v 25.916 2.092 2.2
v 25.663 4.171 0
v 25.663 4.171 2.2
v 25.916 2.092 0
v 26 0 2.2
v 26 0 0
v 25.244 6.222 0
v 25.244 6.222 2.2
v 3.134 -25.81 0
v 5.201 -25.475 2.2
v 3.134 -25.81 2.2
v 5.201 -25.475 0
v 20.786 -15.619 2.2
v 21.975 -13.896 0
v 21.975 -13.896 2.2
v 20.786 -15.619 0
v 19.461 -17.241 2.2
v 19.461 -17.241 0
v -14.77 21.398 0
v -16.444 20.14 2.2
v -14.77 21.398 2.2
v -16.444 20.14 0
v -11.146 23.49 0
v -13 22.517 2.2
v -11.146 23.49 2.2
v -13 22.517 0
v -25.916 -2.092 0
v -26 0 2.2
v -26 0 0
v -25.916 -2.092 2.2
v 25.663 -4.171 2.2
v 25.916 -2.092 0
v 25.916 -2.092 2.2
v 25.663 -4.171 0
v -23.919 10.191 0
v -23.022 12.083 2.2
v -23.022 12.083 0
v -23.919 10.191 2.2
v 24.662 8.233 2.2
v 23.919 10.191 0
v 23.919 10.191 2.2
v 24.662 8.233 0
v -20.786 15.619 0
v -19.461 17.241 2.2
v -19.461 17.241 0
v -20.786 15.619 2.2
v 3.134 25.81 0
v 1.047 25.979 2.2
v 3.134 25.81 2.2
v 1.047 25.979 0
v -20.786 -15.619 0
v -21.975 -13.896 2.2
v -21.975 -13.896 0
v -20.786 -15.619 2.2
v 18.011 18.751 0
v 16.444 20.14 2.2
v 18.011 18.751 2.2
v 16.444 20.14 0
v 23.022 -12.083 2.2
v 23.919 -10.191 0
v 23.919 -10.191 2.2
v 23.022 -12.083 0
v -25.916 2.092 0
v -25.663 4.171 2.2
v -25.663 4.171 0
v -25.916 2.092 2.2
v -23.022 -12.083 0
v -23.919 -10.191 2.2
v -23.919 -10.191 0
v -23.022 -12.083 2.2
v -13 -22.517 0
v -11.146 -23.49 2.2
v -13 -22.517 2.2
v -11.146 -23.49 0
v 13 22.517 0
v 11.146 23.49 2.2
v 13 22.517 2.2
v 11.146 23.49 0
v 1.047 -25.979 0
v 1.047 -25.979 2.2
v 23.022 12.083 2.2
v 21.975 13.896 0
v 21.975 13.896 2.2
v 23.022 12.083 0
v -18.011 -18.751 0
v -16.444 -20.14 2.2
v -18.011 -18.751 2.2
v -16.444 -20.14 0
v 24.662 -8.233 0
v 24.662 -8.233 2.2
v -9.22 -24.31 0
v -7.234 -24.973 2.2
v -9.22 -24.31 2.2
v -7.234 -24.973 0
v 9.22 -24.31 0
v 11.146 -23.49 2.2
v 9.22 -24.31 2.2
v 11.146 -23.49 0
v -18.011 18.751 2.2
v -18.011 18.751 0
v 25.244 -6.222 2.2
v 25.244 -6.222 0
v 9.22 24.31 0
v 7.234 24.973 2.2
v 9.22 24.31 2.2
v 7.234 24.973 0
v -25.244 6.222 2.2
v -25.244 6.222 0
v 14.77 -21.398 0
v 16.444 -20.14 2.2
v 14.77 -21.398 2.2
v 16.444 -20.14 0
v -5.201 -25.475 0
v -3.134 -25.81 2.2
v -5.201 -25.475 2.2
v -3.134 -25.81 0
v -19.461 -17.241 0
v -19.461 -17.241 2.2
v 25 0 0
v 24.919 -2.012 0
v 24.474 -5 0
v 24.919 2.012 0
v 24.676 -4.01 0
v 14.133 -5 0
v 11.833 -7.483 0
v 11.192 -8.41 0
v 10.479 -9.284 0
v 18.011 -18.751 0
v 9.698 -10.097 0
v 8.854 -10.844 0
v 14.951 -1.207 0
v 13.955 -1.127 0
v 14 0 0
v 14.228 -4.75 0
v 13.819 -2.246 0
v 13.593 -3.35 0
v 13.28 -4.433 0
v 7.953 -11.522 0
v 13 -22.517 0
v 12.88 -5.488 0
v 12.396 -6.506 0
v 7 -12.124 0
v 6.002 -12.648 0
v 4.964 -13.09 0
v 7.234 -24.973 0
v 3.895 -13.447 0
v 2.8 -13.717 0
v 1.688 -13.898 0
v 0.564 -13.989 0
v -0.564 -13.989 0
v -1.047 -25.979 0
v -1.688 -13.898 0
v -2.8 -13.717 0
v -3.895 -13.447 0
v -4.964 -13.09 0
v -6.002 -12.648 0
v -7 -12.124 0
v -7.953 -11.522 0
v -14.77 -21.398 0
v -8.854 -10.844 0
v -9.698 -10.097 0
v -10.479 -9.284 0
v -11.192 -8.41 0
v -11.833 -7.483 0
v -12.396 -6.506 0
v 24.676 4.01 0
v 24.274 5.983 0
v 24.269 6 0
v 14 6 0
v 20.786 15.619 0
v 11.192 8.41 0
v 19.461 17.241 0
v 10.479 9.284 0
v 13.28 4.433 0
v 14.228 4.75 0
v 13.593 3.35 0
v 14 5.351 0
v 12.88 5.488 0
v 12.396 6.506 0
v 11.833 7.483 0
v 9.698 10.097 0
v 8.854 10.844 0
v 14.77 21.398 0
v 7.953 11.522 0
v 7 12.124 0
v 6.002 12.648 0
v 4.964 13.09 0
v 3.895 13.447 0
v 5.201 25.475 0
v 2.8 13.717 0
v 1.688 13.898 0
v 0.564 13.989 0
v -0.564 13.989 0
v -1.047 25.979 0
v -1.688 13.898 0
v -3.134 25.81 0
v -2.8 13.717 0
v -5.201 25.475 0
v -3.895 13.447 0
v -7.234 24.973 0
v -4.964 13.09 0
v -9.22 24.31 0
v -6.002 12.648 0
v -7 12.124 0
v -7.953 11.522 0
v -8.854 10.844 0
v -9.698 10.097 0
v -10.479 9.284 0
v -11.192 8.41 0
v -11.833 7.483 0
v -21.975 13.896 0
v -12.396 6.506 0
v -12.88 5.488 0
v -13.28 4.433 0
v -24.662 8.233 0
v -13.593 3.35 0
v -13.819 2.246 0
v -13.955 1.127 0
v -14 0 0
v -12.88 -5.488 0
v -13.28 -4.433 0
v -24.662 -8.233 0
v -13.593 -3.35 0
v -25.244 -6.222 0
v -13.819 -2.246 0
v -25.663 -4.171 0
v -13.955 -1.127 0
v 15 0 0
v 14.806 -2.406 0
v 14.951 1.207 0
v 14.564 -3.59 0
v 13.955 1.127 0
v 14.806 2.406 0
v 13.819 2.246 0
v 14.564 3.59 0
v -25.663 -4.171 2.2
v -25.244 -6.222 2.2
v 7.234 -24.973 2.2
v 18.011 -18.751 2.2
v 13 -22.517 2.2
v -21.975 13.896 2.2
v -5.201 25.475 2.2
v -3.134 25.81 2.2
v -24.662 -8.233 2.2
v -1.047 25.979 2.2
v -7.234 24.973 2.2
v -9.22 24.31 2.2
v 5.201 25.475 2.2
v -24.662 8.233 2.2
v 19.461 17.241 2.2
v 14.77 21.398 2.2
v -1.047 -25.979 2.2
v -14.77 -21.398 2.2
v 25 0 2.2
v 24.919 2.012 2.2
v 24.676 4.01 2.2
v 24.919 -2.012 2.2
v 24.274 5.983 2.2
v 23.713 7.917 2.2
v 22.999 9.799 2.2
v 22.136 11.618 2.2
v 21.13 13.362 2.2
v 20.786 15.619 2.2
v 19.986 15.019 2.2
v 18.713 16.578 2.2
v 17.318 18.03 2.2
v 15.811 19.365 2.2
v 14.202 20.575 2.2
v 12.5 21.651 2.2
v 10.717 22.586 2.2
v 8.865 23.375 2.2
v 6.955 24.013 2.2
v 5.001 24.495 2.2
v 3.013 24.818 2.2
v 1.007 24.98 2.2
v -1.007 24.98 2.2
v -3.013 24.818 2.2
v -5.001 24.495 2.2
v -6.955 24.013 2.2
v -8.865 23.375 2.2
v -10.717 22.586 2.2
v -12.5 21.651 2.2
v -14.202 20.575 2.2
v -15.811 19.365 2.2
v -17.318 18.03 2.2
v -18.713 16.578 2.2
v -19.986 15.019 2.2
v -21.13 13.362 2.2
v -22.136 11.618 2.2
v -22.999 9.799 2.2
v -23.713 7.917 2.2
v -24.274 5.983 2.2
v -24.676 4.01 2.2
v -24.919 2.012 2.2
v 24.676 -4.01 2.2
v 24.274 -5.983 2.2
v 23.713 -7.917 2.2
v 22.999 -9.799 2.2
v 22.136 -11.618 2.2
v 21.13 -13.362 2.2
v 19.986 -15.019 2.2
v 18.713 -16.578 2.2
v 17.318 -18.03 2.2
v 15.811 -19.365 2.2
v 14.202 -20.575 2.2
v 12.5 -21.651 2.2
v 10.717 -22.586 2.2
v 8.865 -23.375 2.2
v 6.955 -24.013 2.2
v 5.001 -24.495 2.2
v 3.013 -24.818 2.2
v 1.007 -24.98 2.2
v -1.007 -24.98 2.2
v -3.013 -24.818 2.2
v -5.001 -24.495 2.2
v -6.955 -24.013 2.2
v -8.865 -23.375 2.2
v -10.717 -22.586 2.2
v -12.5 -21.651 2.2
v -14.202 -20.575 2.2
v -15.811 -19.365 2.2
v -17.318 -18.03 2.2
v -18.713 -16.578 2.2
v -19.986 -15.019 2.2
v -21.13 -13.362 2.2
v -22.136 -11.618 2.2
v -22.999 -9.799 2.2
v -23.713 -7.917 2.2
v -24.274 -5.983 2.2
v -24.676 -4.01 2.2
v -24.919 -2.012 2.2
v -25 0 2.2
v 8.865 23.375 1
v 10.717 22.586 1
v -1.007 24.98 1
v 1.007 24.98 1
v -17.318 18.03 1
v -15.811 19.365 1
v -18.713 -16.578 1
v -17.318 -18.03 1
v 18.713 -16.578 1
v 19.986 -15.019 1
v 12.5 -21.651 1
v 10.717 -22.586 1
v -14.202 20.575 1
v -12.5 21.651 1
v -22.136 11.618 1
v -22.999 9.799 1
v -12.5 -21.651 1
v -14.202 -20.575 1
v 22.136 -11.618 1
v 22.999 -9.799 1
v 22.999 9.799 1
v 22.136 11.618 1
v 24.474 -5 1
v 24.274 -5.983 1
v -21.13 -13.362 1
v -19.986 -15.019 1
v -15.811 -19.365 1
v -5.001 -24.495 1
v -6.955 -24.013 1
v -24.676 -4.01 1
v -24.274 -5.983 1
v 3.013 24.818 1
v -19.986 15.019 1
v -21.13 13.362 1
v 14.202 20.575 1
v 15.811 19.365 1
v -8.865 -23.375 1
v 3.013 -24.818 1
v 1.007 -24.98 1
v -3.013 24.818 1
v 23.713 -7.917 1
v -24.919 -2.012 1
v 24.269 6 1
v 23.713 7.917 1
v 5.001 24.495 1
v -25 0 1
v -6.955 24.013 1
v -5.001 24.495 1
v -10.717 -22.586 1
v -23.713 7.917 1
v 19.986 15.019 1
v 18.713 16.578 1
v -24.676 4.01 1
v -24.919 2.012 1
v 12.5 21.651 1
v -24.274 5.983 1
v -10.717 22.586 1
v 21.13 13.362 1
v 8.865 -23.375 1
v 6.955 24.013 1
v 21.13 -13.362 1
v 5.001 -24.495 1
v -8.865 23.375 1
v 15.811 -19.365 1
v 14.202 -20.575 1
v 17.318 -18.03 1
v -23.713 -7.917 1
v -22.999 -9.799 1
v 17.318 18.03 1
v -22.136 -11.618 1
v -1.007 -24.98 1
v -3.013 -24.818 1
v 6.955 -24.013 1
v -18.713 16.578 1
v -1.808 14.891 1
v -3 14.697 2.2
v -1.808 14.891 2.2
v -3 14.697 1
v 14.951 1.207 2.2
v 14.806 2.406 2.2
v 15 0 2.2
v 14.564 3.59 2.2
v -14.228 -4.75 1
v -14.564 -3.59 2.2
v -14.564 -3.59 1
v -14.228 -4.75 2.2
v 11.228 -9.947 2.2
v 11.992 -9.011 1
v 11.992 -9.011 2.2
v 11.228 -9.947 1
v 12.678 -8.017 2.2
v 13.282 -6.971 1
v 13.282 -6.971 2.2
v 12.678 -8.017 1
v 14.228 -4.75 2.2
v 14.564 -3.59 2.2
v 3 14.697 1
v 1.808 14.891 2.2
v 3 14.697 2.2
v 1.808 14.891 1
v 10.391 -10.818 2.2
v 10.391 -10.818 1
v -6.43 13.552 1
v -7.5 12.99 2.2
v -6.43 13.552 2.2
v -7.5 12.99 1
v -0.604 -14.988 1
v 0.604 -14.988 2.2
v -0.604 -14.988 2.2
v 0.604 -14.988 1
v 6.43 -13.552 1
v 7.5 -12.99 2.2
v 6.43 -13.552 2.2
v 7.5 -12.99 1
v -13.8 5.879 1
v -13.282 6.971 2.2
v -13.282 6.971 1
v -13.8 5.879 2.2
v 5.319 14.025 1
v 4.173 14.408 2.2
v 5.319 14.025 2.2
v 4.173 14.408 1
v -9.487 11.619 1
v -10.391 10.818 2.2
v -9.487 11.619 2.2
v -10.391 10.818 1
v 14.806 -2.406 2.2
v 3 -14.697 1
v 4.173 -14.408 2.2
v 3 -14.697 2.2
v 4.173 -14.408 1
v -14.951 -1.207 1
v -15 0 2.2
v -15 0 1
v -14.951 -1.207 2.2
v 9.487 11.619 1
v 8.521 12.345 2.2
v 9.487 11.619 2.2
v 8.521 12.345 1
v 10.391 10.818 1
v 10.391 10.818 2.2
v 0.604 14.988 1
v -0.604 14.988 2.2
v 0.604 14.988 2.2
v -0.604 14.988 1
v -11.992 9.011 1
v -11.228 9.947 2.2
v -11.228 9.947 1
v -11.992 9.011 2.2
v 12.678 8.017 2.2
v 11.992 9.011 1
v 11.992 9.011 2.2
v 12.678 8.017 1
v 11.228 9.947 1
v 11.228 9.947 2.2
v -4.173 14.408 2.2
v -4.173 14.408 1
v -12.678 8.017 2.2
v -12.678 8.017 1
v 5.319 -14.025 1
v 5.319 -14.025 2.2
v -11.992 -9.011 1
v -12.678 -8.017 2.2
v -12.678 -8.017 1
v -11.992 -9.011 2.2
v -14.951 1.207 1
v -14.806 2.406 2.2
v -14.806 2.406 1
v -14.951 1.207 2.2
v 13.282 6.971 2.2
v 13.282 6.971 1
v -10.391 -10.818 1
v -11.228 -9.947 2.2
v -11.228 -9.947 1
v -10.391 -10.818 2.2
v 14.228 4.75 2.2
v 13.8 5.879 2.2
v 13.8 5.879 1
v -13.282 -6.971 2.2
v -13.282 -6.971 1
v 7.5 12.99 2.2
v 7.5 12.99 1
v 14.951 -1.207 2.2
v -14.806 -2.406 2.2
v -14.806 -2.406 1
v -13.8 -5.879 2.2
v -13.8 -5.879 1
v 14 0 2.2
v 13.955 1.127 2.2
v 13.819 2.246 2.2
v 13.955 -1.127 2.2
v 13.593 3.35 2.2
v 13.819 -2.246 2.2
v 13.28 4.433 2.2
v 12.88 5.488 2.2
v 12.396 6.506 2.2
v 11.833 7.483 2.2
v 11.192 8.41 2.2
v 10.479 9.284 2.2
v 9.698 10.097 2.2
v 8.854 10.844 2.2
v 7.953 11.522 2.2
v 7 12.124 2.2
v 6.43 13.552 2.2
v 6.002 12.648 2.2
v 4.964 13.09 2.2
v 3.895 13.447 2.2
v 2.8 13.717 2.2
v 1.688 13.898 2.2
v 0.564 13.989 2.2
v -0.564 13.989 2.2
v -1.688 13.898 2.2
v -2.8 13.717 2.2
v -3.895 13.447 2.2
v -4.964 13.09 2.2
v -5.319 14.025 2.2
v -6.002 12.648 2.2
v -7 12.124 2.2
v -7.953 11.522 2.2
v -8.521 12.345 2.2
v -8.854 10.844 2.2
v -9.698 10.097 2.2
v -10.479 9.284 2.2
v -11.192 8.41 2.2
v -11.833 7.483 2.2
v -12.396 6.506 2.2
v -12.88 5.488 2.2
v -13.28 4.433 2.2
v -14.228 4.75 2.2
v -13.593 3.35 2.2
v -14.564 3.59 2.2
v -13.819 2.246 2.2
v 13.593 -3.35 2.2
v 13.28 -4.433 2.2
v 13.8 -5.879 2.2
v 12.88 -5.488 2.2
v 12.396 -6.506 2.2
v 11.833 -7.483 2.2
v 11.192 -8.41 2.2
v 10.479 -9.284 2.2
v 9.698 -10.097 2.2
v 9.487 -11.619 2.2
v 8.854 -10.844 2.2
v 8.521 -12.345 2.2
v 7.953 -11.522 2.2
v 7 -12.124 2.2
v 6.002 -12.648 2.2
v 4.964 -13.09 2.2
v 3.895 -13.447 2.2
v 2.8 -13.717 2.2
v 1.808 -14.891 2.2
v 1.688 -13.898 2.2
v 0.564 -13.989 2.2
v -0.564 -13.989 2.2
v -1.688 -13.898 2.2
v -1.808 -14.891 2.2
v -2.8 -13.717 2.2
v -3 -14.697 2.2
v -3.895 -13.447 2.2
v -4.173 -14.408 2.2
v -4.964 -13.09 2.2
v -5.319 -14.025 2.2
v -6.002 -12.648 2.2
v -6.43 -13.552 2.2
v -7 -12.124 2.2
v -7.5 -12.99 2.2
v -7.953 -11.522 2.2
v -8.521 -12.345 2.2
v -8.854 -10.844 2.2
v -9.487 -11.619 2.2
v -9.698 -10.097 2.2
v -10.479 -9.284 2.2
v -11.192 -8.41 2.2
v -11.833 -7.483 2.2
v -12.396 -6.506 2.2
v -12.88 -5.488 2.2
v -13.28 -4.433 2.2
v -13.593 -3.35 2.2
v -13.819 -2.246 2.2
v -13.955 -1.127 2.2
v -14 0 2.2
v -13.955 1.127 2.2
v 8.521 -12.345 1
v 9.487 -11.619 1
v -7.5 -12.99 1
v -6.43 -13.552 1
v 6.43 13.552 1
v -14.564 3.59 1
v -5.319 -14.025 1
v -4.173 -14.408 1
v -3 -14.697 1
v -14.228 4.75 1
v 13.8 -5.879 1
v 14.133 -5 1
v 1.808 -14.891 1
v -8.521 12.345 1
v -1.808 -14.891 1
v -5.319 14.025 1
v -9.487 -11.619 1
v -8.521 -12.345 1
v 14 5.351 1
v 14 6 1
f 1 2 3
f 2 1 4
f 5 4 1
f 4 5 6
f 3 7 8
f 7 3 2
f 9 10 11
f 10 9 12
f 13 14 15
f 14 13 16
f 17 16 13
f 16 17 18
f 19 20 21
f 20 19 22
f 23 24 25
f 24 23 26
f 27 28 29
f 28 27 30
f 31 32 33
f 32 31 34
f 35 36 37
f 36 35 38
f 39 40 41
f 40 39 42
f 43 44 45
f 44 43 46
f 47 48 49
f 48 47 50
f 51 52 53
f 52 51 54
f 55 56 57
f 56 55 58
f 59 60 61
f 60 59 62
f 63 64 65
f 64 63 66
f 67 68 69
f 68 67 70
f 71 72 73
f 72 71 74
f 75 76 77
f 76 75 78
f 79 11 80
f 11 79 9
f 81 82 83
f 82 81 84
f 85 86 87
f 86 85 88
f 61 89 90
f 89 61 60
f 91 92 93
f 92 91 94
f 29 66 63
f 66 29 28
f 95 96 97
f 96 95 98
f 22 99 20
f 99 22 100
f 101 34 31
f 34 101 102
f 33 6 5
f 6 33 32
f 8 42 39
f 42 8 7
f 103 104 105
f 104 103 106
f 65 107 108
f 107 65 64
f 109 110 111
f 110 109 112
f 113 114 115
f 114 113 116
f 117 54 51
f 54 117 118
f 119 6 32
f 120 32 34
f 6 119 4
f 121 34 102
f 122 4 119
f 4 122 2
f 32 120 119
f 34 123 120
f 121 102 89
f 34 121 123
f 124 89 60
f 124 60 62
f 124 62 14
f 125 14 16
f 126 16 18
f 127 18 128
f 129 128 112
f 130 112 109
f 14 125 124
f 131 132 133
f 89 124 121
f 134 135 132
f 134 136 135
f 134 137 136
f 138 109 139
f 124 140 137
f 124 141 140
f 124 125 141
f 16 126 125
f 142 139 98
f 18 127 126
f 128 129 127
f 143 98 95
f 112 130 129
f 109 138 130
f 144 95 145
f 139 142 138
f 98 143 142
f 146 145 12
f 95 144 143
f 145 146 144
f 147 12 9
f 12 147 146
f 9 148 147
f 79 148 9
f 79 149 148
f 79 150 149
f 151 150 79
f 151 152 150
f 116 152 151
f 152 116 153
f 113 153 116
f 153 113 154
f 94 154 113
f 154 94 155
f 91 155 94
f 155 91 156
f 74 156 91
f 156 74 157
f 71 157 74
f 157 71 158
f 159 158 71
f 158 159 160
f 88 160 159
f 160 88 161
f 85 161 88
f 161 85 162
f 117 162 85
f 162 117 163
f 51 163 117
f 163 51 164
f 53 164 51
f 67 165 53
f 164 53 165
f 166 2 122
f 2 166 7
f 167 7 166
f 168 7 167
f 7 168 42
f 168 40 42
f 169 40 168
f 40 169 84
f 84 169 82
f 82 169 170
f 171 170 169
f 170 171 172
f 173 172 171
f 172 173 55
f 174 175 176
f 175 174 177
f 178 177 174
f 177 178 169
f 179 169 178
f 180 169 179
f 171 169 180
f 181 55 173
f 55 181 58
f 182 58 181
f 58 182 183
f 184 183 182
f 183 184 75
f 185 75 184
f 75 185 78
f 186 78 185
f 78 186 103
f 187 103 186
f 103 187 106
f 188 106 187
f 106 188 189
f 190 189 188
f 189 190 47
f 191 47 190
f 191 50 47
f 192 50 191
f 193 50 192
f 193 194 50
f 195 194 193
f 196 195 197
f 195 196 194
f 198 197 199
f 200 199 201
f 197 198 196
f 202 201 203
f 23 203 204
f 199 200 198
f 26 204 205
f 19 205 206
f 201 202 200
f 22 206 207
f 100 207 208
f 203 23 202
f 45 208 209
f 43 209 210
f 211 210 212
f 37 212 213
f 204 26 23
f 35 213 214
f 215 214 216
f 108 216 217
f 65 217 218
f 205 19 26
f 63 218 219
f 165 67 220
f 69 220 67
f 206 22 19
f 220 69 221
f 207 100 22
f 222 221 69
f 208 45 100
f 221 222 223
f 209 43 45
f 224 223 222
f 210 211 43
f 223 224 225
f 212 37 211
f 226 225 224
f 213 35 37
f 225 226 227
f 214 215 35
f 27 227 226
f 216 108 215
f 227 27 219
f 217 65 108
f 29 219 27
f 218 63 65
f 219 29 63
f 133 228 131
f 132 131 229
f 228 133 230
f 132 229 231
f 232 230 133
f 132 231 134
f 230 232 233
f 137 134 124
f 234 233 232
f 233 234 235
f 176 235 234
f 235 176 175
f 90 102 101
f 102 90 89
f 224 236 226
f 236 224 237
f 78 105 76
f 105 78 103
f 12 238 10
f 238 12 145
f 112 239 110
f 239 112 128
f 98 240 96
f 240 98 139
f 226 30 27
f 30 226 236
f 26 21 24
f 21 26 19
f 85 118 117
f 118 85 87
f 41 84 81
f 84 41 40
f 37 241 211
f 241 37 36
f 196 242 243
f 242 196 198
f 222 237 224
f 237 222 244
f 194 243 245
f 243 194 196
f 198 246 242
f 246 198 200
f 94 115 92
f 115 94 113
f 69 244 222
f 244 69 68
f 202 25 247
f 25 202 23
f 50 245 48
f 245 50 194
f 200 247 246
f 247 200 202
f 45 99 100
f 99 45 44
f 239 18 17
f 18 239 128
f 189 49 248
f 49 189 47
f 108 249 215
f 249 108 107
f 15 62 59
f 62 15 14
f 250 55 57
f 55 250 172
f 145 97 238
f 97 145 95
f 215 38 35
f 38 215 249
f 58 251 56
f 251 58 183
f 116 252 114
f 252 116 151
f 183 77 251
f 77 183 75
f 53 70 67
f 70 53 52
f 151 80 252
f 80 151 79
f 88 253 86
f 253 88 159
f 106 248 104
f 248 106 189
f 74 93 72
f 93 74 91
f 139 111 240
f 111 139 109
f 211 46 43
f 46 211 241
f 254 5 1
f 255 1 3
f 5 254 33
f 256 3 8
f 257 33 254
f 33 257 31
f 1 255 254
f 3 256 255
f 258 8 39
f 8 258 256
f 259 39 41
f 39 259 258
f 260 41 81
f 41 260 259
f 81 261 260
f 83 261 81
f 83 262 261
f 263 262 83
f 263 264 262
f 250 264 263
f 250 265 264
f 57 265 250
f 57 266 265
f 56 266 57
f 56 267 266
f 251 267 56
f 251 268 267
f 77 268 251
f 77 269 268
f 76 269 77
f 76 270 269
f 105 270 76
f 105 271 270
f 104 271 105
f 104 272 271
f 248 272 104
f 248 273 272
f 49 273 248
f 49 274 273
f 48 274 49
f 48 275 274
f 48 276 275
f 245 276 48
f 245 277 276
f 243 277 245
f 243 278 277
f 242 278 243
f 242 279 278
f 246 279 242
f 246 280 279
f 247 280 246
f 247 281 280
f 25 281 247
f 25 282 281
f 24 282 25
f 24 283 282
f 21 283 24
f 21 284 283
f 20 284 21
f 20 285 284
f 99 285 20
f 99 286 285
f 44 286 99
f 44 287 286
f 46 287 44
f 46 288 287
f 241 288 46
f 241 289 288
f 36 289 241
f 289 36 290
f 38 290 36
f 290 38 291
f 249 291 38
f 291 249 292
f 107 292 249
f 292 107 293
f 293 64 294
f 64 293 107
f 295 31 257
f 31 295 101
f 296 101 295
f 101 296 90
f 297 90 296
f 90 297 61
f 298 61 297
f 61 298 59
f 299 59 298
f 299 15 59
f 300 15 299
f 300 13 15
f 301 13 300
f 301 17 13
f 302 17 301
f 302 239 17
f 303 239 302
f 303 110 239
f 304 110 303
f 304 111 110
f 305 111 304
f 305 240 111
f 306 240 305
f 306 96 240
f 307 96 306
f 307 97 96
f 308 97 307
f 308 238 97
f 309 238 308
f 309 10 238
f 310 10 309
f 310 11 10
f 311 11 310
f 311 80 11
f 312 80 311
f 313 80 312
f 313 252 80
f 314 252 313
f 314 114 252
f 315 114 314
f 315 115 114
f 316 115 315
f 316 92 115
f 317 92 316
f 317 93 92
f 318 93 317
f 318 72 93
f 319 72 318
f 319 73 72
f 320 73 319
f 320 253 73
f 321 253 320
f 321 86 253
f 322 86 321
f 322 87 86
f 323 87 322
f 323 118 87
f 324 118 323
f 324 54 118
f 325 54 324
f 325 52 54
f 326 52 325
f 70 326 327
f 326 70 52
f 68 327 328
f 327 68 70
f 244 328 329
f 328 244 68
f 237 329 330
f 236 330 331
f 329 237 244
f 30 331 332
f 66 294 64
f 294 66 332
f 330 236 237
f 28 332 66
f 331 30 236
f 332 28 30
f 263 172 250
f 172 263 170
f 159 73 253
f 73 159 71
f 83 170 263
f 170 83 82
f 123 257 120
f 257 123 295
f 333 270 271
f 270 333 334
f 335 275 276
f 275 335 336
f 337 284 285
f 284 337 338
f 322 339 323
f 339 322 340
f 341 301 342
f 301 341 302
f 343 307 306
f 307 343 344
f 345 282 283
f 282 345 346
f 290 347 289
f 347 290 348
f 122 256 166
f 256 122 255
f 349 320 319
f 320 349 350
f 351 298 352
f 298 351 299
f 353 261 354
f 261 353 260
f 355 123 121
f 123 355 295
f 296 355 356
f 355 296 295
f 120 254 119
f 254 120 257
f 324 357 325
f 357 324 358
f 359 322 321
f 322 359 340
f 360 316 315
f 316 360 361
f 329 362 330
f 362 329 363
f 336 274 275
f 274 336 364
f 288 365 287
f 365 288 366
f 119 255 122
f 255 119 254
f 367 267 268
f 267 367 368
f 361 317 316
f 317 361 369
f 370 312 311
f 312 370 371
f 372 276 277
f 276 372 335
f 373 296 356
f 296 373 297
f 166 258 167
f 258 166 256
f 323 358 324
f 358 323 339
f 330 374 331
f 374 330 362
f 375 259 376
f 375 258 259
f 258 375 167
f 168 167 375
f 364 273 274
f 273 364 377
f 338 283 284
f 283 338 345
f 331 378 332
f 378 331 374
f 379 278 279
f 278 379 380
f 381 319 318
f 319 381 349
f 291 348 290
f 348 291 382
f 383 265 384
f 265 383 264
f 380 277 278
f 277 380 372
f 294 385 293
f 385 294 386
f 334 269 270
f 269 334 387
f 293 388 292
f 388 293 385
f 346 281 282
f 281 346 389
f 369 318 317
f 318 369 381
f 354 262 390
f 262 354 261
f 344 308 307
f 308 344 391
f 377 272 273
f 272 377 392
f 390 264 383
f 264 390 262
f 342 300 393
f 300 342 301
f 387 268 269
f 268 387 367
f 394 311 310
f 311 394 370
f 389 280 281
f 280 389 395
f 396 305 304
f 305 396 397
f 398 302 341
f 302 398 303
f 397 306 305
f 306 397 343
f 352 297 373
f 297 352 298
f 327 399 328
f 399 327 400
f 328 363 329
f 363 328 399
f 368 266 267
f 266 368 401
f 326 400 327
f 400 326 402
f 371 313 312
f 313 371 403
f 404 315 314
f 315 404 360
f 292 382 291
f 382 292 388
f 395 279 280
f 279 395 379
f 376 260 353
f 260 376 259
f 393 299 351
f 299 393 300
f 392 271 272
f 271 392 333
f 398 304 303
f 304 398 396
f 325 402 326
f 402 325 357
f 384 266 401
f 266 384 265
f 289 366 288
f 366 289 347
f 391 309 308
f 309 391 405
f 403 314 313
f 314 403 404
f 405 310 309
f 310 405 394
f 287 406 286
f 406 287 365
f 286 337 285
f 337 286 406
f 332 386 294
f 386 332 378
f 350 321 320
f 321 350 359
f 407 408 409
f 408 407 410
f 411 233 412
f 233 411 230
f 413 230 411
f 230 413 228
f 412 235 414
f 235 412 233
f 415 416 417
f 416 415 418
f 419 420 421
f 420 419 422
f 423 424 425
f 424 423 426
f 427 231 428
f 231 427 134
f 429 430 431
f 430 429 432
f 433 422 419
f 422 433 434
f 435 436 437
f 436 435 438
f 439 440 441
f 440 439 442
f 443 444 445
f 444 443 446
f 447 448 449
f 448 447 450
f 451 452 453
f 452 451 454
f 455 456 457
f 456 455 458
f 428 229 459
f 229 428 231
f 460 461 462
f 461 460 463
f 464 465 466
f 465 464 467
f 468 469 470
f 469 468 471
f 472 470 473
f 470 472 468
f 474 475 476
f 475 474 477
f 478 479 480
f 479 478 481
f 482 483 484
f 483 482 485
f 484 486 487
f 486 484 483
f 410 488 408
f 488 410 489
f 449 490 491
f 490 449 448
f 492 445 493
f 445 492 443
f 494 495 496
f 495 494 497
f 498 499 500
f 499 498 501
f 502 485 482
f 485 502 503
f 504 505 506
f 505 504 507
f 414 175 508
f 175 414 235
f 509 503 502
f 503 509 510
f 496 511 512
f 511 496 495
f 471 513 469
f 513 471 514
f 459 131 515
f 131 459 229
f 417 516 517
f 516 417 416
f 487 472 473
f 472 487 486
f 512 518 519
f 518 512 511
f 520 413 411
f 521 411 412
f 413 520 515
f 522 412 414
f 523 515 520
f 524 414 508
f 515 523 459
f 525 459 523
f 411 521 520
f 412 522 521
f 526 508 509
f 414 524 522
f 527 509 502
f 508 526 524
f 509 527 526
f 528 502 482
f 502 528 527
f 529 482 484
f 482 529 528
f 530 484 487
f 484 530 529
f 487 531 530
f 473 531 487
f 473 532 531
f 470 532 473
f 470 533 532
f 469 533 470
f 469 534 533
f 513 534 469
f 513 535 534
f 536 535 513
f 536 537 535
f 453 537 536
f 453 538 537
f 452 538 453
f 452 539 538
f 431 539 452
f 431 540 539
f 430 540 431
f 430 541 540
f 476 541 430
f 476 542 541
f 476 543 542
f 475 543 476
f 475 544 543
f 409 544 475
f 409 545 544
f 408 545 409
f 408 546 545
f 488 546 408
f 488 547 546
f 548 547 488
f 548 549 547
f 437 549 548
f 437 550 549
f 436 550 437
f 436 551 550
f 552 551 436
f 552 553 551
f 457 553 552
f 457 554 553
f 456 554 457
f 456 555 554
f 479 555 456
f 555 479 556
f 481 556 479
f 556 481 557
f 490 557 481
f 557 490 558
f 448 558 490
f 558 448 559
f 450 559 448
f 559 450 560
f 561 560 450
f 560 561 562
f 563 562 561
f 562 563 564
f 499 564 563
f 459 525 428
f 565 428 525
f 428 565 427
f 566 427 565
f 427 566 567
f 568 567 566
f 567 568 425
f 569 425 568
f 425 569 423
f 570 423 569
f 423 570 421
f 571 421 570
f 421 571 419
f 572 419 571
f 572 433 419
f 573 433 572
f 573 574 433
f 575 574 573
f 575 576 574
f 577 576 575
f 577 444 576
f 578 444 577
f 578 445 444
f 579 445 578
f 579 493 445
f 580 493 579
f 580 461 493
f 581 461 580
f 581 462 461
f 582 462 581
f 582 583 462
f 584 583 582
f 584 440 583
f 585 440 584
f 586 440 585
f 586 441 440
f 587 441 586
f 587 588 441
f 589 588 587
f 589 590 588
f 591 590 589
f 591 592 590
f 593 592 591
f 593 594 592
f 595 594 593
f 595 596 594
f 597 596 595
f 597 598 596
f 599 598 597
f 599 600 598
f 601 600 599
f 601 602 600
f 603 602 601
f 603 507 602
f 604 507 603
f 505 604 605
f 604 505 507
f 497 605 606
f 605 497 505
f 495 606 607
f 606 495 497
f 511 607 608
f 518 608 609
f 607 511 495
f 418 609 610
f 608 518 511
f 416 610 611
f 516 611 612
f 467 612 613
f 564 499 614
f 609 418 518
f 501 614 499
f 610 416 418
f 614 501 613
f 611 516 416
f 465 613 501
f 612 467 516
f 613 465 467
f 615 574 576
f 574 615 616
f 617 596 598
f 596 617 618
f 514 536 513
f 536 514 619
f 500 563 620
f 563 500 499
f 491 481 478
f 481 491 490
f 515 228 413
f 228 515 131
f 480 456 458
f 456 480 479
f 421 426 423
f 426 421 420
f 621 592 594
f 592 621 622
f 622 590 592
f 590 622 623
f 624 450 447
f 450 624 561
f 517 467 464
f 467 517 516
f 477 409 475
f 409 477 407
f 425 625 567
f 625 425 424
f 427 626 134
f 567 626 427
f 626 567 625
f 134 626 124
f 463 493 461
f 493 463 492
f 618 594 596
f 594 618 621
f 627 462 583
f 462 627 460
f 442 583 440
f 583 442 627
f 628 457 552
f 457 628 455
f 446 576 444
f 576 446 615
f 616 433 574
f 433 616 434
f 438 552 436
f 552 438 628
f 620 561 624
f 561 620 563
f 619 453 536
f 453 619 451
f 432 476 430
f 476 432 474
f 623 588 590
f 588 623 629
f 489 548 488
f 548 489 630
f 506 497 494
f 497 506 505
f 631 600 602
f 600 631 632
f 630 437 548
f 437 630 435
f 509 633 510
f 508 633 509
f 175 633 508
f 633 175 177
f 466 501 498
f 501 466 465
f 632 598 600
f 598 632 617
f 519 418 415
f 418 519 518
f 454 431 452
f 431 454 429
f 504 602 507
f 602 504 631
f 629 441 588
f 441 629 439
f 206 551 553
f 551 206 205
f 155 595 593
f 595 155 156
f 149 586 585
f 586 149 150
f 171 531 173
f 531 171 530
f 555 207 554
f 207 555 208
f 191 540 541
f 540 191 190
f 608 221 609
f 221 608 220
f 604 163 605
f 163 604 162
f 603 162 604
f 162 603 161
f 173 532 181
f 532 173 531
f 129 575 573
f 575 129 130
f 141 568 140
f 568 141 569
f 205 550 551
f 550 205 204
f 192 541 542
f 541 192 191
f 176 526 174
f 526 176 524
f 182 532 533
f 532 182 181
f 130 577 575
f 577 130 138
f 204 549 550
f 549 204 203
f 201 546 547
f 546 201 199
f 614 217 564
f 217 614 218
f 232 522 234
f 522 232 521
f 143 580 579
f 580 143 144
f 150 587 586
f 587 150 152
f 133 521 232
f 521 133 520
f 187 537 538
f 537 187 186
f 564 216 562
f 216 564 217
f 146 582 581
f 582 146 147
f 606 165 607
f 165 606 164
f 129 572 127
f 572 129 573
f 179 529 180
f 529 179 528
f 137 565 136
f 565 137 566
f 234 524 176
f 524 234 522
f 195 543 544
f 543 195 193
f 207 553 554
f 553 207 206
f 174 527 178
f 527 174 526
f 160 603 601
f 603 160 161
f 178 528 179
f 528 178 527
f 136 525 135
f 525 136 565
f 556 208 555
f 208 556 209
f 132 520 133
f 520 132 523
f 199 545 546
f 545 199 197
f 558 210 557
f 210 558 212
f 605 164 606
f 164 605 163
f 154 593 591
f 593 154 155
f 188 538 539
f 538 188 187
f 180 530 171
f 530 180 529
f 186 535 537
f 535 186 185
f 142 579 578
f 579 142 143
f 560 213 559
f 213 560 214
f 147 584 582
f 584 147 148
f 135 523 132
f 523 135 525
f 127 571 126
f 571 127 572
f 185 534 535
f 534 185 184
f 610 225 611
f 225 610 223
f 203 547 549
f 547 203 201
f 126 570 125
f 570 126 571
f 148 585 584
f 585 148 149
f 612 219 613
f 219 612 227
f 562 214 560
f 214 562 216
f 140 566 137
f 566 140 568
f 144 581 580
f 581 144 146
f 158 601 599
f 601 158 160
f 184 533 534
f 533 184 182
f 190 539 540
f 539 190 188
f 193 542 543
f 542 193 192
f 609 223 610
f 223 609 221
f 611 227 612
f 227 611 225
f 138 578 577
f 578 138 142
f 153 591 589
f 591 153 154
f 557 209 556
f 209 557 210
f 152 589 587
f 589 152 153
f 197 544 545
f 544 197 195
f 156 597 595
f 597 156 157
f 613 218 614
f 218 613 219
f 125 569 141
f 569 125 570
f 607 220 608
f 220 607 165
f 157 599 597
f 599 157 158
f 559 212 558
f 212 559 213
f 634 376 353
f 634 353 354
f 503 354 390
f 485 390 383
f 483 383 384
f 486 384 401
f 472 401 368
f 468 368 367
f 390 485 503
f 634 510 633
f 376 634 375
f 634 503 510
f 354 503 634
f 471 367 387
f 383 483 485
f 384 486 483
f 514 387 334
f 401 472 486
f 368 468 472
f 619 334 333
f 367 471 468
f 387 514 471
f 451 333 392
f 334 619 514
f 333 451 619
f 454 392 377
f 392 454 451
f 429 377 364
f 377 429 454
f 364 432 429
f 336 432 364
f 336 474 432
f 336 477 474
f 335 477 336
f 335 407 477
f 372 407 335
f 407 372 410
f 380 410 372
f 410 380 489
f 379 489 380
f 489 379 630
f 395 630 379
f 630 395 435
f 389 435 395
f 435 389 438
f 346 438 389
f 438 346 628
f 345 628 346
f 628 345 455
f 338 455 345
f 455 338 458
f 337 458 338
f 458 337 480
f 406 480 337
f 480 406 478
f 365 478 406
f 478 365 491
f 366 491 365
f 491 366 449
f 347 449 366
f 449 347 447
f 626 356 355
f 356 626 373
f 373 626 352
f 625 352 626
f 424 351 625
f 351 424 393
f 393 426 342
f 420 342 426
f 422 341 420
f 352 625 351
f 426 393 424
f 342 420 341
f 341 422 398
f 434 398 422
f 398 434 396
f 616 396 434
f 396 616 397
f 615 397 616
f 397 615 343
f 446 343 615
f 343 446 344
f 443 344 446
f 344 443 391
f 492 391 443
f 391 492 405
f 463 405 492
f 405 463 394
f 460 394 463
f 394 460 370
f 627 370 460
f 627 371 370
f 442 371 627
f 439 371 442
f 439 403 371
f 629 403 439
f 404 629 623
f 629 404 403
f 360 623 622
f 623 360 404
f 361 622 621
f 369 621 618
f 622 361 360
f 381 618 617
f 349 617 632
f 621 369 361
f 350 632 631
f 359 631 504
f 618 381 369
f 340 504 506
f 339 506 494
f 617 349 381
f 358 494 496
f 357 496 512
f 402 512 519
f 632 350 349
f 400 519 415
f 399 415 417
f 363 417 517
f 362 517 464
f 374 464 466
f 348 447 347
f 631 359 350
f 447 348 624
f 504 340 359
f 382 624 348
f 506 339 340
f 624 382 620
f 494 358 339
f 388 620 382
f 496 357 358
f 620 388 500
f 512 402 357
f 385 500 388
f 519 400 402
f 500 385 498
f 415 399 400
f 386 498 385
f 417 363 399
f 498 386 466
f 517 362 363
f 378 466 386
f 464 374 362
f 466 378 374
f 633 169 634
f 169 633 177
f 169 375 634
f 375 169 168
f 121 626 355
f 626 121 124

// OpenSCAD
module ring(height, inner_radius, outer_radius) {
  difference() {
    cylinder(h = height, r = outer_radius, $fn = 78);
    translate([0, 0, -1])
      cylinder(h = height + 2, r = inner_radius, $fn = 78);
  }
}

ring(2.2,25,26);
ring(2.2,14,15);
  difference() {
    cylinder(h = 1, r = 26,$fn = 78);
    translate([0, 0, -1])
      cylinder(h = 1 + 2, r = 14, $fn = 78);
      translate([14,-5,-1])
      cube([11,11,3]);
      
  }
  
  
